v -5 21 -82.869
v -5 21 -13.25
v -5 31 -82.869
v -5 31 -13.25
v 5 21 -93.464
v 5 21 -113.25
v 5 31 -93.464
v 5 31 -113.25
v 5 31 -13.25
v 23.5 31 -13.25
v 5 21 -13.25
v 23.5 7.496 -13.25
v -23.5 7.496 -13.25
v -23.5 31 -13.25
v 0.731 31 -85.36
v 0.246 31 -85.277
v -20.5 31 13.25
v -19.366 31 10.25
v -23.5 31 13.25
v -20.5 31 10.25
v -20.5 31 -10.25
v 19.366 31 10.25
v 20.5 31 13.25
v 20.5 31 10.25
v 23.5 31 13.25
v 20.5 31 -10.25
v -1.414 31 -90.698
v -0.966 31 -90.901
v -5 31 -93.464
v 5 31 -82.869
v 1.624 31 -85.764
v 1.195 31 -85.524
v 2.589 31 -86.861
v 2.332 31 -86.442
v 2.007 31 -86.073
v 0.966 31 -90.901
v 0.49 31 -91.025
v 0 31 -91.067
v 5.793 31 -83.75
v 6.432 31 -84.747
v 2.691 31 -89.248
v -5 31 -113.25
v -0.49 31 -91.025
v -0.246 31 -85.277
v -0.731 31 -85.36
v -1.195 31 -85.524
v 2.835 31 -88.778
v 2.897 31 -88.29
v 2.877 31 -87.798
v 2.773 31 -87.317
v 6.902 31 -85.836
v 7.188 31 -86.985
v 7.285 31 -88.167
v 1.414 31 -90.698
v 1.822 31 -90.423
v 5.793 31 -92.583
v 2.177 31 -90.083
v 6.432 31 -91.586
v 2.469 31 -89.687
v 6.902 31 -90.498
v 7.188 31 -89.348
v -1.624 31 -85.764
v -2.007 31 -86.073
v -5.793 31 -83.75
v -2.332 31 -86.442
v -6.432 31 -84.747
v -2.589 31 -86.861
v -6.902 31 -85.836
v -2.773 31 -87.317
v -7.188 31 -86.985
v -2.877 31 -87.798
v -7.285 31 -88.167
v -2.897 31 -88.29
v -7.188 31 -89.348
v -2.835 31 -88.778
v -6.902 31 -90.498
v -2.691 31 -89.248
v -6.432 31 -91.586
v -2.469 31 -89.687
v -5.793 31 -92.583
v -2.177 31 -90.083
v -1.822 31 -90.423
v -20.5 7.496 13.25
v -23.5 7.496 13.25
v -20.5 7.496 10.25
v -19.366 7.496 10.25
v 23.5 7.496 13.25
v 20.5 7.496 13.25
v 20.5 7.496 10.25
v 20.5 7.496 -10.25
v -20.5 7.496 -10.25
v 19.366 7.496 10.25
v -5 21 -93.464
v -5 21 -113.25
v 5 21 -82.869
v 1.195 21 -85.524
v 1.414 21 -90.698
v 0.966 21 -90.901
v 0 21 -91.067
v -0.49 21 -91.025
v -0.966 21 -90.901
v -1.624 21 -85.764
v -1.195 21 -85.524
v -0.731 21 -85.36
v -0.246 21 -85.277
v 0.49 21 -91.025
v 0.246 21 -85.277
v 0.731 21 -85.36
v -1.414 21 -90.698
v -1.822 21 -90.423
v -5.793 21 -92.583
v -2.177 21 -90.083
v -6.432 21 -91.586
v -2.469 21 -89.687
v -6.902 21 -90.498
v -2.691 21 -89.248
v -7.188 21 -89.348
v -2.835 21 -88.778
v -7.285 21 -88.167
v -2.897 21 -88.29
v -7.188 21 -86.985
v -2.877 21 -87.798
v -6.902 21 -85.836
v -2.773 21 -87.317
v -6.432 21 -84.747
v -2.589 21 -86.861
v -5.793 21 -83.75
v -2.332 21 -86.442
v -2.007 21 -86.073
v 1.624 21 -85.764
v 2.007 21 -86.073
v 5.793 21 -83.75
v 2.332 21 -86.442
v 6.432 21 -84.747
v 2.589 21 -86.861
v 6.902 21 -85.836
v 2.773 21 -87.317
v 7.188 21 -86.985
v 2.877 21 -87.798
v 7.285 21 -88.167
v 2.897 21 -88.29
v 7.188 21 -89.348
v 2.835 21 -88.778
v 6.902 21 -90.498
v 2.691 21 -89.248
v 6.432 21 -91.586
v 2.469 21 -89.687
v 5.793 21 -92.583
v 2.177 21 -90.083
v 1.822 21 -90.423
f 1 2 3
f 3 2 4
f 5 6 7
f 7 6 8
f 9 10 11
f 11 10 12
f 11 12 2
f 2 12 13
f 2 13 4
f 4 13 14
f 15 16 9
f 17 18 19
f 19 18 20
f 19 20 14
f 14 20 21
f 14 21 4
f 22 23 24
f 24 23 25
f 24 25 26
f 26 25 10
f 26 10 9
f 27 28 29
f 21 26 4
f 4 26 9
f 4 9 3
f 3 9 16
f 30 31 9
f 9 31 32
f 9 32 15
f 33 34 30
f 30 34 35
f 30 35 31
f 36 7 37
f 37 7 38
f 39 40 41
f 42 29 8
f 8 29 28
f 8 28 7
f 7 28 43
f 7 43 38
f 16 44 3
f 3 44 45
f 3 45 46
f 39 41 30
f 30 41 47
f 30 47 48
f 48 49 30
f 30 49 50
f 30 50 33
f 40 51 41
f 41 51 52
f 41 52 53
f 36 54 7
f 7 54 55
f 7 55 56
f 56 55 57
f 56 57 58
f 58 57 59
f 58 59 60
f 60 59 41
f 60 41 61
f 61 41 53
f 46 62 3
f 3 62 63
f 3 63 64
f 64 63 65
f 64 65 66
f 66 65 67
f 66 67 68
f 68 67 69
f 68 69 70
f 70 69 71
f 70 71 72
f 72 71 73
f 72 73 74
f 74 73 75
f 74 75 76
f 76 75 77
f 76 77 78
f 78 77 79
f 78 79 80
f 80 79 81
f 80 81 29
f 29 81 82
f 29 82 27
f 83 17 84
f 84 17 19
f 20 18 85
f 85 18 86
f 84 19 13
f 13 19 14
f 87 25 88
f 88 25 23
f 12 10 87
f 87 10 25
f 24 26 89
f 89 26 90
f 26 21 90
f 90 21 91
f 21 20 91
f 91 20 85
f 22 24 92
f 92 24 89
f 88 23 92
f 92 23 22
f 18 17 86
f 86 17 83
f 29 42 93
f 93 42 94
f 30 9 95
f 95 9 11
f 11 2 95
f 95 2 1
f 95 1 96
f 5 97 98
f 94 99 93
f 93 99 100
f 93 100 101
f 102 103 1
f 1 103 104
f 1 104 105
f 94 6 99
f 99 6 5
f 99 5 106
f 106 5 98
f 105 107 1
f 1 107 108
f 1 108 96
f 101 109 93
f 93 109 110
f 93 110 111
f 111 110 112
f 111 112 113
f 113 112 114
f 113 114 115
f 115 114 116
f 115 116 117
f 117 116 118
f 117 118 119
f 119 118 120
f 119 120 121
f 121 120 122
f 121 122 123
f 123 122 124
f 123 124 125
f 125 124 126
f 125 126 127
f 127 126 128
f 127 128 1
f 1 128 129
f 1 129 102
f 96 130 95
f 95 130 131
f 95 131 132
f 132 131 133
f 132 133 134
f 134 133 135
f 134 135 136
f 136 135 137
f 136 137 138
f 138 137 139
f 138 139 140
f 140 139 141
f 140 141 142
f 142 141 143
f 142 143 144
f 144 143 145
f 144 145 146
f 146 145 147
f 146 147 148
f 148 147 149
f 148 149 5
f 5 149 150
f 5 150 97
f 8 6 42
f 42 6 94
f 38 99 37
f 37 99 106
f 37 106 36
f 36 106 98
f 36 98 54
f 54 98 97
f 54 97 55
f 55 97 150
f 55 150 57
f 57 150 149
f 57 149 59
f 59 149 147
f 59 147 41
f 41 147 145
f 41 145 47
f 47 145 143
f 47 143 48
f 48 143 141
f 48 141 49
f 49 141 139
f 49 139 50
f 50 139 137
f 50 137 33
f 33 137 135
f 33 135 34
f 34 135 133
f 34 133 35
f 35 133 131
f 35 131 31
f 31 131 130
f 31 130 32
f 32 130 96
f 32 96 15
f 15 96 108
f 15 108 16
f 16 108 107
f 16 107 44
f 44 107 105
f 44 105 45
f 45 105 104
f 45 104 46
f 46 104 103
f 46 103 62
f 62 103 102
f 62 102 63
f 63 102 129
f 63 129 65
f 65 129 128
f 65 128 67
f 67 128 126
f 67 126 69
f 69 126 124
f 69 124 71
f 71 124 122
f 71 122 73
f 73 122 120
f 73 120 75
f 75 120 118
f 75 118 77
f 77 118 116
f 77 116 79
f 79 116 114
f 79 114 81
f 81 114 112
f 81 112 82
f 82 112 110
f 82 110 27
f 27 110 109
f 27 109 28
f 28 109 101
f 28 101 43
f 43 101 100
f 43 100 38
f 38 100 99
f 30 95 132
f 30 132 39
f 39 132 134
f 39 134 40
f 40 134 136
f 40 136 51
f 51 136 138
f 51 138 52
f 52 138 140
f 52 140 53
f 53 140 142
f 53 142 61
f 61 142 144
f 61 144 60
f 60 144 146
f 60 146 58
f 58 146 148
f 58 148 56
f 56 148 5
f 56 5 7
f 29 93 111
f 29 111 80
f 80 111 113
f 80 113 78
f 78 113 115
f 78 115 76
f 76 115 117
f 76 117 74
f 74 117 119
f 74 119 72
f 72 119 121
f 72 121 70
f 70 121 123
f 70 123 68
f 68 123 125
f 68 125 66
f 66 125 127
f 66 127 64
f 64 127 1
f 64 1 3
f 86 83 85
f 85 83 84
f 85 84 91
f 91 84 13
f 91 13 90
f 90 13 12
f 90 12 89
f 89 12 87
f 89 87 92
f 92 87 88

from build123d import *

# Parameters (mm, degrees)
SKETCH1_W           = 47
SKETCH1_H           = 26.5
SKETCH1_W_2         = 41
SKETCH1_H_2         = 20.5
BOSS_EXTRUDE1_DEPTH = 31
CUT_EXTRUDE2_DEPTH  = 31
SKETCH4_W           = 10
SKETCH4_H           = 10
BOSS_EXTRUDE3_DEPTH = 100
SKETCH7_R           = 2.9
CUT_EXTRUDE5_DEPTH  = 100
SKETCH8_R           = 7.284546015
SKETCH8_R_2         = 2.9
BOSS_EXTRUDE4_DEPTH = 10
SKETCH10_W          = 26.5
SKETCH10_H          = 7.496145738
CUT_EXTRUDE6_DEPTH  = 105


with BuildPart() as part:
    # Sketch1 → Boss-Extrude1 (new body)
    with BuildSketch(Plane(origin=(0, 0, 0), x_dir=(1, 0, 0), z_dir=(0, 1, 0))):
        Rectangle(SKETCH1_W, SKETCH1_H)
        Rectangle(SKETCH1_W_2, SKETCH1_H_2, mode=Mode.SUBTRACT)
    extrude(amount=BOSS_EXTRUDE1_DEPTH)

    # Sketch3 → Cut-Extrude2 (cut)
    with BuildSketch(Plane(origin=(0, 31, 0), x_dir=(1, 0, 0), z_dir=(0, 1, 0))):
        Polygon((-19.366144394, -10.25), (-20.5, -13.25), (0, -13.25), (0, -10.25), align=None)
        Polygon((0, -10.25), (0, -13.25), (20.5, -13.25), (19.366144394, -10.25), align=None)
    extrude(amount=-CUT_EXTRUDE2_DEPTH, mode=Mode.SUBTRACT)

    # Sketch4 → Boss-Extrude3 (add)
    with BuildSketch(Plane(origin=(0, 0, -13.25), x_dir=(-1, 0, 0), z_dir=(0, 0, -1))):
        with Locations((0, 26)):
            Rectangle(SKETCH4_W, SKETCH4_H)
    extrude(amount=BOSS_EXTRUDE3_DEPTH)

    # Sketch7 → Cut-Extrude5 (cut)
    with BuildSketch(Plane.XZ.offset(-21)):
        with Locations(Location((0, -88.166602936, 0), (0, 0, 270))):
            Circle(SKETCH7_R)
    extrude(amount=-CUT_EXTRUDE5_DEPTH, mode=Mode.SUBTRACT)

    # Sketch8 → Boss-Extrude4 (add)
    with BuildSketch(Plane(origin=(0, 21, 0), x_dir=(-1, 0, 0), z_dir=(0, -1, 0))):
        with Locations((0, 88.166602936)):
            Circle(SKETCH8_R)
        with Locations(Location((0, 88.166602936, 0), (0, 0, 90))):
            Circle(SKETCH8_R_2, mode=Mode.SUBTRACT)
    extrude(amount=-BOSS_EXTRUDE4_DEPTH)

    # Sketch10 → Cut-Extrude6 (cut)
    with BuildSketch(Plane.ZY.offset(23.5)):
        with Locations((0, 3.748072869)):
            Rectangle(SKETCH10_W, SKETCH10_H)
    extrude(amount=-CUT_EXTRUDE6_DEPTH, mode=Mode.SUBTRACT)


solid = part.part
